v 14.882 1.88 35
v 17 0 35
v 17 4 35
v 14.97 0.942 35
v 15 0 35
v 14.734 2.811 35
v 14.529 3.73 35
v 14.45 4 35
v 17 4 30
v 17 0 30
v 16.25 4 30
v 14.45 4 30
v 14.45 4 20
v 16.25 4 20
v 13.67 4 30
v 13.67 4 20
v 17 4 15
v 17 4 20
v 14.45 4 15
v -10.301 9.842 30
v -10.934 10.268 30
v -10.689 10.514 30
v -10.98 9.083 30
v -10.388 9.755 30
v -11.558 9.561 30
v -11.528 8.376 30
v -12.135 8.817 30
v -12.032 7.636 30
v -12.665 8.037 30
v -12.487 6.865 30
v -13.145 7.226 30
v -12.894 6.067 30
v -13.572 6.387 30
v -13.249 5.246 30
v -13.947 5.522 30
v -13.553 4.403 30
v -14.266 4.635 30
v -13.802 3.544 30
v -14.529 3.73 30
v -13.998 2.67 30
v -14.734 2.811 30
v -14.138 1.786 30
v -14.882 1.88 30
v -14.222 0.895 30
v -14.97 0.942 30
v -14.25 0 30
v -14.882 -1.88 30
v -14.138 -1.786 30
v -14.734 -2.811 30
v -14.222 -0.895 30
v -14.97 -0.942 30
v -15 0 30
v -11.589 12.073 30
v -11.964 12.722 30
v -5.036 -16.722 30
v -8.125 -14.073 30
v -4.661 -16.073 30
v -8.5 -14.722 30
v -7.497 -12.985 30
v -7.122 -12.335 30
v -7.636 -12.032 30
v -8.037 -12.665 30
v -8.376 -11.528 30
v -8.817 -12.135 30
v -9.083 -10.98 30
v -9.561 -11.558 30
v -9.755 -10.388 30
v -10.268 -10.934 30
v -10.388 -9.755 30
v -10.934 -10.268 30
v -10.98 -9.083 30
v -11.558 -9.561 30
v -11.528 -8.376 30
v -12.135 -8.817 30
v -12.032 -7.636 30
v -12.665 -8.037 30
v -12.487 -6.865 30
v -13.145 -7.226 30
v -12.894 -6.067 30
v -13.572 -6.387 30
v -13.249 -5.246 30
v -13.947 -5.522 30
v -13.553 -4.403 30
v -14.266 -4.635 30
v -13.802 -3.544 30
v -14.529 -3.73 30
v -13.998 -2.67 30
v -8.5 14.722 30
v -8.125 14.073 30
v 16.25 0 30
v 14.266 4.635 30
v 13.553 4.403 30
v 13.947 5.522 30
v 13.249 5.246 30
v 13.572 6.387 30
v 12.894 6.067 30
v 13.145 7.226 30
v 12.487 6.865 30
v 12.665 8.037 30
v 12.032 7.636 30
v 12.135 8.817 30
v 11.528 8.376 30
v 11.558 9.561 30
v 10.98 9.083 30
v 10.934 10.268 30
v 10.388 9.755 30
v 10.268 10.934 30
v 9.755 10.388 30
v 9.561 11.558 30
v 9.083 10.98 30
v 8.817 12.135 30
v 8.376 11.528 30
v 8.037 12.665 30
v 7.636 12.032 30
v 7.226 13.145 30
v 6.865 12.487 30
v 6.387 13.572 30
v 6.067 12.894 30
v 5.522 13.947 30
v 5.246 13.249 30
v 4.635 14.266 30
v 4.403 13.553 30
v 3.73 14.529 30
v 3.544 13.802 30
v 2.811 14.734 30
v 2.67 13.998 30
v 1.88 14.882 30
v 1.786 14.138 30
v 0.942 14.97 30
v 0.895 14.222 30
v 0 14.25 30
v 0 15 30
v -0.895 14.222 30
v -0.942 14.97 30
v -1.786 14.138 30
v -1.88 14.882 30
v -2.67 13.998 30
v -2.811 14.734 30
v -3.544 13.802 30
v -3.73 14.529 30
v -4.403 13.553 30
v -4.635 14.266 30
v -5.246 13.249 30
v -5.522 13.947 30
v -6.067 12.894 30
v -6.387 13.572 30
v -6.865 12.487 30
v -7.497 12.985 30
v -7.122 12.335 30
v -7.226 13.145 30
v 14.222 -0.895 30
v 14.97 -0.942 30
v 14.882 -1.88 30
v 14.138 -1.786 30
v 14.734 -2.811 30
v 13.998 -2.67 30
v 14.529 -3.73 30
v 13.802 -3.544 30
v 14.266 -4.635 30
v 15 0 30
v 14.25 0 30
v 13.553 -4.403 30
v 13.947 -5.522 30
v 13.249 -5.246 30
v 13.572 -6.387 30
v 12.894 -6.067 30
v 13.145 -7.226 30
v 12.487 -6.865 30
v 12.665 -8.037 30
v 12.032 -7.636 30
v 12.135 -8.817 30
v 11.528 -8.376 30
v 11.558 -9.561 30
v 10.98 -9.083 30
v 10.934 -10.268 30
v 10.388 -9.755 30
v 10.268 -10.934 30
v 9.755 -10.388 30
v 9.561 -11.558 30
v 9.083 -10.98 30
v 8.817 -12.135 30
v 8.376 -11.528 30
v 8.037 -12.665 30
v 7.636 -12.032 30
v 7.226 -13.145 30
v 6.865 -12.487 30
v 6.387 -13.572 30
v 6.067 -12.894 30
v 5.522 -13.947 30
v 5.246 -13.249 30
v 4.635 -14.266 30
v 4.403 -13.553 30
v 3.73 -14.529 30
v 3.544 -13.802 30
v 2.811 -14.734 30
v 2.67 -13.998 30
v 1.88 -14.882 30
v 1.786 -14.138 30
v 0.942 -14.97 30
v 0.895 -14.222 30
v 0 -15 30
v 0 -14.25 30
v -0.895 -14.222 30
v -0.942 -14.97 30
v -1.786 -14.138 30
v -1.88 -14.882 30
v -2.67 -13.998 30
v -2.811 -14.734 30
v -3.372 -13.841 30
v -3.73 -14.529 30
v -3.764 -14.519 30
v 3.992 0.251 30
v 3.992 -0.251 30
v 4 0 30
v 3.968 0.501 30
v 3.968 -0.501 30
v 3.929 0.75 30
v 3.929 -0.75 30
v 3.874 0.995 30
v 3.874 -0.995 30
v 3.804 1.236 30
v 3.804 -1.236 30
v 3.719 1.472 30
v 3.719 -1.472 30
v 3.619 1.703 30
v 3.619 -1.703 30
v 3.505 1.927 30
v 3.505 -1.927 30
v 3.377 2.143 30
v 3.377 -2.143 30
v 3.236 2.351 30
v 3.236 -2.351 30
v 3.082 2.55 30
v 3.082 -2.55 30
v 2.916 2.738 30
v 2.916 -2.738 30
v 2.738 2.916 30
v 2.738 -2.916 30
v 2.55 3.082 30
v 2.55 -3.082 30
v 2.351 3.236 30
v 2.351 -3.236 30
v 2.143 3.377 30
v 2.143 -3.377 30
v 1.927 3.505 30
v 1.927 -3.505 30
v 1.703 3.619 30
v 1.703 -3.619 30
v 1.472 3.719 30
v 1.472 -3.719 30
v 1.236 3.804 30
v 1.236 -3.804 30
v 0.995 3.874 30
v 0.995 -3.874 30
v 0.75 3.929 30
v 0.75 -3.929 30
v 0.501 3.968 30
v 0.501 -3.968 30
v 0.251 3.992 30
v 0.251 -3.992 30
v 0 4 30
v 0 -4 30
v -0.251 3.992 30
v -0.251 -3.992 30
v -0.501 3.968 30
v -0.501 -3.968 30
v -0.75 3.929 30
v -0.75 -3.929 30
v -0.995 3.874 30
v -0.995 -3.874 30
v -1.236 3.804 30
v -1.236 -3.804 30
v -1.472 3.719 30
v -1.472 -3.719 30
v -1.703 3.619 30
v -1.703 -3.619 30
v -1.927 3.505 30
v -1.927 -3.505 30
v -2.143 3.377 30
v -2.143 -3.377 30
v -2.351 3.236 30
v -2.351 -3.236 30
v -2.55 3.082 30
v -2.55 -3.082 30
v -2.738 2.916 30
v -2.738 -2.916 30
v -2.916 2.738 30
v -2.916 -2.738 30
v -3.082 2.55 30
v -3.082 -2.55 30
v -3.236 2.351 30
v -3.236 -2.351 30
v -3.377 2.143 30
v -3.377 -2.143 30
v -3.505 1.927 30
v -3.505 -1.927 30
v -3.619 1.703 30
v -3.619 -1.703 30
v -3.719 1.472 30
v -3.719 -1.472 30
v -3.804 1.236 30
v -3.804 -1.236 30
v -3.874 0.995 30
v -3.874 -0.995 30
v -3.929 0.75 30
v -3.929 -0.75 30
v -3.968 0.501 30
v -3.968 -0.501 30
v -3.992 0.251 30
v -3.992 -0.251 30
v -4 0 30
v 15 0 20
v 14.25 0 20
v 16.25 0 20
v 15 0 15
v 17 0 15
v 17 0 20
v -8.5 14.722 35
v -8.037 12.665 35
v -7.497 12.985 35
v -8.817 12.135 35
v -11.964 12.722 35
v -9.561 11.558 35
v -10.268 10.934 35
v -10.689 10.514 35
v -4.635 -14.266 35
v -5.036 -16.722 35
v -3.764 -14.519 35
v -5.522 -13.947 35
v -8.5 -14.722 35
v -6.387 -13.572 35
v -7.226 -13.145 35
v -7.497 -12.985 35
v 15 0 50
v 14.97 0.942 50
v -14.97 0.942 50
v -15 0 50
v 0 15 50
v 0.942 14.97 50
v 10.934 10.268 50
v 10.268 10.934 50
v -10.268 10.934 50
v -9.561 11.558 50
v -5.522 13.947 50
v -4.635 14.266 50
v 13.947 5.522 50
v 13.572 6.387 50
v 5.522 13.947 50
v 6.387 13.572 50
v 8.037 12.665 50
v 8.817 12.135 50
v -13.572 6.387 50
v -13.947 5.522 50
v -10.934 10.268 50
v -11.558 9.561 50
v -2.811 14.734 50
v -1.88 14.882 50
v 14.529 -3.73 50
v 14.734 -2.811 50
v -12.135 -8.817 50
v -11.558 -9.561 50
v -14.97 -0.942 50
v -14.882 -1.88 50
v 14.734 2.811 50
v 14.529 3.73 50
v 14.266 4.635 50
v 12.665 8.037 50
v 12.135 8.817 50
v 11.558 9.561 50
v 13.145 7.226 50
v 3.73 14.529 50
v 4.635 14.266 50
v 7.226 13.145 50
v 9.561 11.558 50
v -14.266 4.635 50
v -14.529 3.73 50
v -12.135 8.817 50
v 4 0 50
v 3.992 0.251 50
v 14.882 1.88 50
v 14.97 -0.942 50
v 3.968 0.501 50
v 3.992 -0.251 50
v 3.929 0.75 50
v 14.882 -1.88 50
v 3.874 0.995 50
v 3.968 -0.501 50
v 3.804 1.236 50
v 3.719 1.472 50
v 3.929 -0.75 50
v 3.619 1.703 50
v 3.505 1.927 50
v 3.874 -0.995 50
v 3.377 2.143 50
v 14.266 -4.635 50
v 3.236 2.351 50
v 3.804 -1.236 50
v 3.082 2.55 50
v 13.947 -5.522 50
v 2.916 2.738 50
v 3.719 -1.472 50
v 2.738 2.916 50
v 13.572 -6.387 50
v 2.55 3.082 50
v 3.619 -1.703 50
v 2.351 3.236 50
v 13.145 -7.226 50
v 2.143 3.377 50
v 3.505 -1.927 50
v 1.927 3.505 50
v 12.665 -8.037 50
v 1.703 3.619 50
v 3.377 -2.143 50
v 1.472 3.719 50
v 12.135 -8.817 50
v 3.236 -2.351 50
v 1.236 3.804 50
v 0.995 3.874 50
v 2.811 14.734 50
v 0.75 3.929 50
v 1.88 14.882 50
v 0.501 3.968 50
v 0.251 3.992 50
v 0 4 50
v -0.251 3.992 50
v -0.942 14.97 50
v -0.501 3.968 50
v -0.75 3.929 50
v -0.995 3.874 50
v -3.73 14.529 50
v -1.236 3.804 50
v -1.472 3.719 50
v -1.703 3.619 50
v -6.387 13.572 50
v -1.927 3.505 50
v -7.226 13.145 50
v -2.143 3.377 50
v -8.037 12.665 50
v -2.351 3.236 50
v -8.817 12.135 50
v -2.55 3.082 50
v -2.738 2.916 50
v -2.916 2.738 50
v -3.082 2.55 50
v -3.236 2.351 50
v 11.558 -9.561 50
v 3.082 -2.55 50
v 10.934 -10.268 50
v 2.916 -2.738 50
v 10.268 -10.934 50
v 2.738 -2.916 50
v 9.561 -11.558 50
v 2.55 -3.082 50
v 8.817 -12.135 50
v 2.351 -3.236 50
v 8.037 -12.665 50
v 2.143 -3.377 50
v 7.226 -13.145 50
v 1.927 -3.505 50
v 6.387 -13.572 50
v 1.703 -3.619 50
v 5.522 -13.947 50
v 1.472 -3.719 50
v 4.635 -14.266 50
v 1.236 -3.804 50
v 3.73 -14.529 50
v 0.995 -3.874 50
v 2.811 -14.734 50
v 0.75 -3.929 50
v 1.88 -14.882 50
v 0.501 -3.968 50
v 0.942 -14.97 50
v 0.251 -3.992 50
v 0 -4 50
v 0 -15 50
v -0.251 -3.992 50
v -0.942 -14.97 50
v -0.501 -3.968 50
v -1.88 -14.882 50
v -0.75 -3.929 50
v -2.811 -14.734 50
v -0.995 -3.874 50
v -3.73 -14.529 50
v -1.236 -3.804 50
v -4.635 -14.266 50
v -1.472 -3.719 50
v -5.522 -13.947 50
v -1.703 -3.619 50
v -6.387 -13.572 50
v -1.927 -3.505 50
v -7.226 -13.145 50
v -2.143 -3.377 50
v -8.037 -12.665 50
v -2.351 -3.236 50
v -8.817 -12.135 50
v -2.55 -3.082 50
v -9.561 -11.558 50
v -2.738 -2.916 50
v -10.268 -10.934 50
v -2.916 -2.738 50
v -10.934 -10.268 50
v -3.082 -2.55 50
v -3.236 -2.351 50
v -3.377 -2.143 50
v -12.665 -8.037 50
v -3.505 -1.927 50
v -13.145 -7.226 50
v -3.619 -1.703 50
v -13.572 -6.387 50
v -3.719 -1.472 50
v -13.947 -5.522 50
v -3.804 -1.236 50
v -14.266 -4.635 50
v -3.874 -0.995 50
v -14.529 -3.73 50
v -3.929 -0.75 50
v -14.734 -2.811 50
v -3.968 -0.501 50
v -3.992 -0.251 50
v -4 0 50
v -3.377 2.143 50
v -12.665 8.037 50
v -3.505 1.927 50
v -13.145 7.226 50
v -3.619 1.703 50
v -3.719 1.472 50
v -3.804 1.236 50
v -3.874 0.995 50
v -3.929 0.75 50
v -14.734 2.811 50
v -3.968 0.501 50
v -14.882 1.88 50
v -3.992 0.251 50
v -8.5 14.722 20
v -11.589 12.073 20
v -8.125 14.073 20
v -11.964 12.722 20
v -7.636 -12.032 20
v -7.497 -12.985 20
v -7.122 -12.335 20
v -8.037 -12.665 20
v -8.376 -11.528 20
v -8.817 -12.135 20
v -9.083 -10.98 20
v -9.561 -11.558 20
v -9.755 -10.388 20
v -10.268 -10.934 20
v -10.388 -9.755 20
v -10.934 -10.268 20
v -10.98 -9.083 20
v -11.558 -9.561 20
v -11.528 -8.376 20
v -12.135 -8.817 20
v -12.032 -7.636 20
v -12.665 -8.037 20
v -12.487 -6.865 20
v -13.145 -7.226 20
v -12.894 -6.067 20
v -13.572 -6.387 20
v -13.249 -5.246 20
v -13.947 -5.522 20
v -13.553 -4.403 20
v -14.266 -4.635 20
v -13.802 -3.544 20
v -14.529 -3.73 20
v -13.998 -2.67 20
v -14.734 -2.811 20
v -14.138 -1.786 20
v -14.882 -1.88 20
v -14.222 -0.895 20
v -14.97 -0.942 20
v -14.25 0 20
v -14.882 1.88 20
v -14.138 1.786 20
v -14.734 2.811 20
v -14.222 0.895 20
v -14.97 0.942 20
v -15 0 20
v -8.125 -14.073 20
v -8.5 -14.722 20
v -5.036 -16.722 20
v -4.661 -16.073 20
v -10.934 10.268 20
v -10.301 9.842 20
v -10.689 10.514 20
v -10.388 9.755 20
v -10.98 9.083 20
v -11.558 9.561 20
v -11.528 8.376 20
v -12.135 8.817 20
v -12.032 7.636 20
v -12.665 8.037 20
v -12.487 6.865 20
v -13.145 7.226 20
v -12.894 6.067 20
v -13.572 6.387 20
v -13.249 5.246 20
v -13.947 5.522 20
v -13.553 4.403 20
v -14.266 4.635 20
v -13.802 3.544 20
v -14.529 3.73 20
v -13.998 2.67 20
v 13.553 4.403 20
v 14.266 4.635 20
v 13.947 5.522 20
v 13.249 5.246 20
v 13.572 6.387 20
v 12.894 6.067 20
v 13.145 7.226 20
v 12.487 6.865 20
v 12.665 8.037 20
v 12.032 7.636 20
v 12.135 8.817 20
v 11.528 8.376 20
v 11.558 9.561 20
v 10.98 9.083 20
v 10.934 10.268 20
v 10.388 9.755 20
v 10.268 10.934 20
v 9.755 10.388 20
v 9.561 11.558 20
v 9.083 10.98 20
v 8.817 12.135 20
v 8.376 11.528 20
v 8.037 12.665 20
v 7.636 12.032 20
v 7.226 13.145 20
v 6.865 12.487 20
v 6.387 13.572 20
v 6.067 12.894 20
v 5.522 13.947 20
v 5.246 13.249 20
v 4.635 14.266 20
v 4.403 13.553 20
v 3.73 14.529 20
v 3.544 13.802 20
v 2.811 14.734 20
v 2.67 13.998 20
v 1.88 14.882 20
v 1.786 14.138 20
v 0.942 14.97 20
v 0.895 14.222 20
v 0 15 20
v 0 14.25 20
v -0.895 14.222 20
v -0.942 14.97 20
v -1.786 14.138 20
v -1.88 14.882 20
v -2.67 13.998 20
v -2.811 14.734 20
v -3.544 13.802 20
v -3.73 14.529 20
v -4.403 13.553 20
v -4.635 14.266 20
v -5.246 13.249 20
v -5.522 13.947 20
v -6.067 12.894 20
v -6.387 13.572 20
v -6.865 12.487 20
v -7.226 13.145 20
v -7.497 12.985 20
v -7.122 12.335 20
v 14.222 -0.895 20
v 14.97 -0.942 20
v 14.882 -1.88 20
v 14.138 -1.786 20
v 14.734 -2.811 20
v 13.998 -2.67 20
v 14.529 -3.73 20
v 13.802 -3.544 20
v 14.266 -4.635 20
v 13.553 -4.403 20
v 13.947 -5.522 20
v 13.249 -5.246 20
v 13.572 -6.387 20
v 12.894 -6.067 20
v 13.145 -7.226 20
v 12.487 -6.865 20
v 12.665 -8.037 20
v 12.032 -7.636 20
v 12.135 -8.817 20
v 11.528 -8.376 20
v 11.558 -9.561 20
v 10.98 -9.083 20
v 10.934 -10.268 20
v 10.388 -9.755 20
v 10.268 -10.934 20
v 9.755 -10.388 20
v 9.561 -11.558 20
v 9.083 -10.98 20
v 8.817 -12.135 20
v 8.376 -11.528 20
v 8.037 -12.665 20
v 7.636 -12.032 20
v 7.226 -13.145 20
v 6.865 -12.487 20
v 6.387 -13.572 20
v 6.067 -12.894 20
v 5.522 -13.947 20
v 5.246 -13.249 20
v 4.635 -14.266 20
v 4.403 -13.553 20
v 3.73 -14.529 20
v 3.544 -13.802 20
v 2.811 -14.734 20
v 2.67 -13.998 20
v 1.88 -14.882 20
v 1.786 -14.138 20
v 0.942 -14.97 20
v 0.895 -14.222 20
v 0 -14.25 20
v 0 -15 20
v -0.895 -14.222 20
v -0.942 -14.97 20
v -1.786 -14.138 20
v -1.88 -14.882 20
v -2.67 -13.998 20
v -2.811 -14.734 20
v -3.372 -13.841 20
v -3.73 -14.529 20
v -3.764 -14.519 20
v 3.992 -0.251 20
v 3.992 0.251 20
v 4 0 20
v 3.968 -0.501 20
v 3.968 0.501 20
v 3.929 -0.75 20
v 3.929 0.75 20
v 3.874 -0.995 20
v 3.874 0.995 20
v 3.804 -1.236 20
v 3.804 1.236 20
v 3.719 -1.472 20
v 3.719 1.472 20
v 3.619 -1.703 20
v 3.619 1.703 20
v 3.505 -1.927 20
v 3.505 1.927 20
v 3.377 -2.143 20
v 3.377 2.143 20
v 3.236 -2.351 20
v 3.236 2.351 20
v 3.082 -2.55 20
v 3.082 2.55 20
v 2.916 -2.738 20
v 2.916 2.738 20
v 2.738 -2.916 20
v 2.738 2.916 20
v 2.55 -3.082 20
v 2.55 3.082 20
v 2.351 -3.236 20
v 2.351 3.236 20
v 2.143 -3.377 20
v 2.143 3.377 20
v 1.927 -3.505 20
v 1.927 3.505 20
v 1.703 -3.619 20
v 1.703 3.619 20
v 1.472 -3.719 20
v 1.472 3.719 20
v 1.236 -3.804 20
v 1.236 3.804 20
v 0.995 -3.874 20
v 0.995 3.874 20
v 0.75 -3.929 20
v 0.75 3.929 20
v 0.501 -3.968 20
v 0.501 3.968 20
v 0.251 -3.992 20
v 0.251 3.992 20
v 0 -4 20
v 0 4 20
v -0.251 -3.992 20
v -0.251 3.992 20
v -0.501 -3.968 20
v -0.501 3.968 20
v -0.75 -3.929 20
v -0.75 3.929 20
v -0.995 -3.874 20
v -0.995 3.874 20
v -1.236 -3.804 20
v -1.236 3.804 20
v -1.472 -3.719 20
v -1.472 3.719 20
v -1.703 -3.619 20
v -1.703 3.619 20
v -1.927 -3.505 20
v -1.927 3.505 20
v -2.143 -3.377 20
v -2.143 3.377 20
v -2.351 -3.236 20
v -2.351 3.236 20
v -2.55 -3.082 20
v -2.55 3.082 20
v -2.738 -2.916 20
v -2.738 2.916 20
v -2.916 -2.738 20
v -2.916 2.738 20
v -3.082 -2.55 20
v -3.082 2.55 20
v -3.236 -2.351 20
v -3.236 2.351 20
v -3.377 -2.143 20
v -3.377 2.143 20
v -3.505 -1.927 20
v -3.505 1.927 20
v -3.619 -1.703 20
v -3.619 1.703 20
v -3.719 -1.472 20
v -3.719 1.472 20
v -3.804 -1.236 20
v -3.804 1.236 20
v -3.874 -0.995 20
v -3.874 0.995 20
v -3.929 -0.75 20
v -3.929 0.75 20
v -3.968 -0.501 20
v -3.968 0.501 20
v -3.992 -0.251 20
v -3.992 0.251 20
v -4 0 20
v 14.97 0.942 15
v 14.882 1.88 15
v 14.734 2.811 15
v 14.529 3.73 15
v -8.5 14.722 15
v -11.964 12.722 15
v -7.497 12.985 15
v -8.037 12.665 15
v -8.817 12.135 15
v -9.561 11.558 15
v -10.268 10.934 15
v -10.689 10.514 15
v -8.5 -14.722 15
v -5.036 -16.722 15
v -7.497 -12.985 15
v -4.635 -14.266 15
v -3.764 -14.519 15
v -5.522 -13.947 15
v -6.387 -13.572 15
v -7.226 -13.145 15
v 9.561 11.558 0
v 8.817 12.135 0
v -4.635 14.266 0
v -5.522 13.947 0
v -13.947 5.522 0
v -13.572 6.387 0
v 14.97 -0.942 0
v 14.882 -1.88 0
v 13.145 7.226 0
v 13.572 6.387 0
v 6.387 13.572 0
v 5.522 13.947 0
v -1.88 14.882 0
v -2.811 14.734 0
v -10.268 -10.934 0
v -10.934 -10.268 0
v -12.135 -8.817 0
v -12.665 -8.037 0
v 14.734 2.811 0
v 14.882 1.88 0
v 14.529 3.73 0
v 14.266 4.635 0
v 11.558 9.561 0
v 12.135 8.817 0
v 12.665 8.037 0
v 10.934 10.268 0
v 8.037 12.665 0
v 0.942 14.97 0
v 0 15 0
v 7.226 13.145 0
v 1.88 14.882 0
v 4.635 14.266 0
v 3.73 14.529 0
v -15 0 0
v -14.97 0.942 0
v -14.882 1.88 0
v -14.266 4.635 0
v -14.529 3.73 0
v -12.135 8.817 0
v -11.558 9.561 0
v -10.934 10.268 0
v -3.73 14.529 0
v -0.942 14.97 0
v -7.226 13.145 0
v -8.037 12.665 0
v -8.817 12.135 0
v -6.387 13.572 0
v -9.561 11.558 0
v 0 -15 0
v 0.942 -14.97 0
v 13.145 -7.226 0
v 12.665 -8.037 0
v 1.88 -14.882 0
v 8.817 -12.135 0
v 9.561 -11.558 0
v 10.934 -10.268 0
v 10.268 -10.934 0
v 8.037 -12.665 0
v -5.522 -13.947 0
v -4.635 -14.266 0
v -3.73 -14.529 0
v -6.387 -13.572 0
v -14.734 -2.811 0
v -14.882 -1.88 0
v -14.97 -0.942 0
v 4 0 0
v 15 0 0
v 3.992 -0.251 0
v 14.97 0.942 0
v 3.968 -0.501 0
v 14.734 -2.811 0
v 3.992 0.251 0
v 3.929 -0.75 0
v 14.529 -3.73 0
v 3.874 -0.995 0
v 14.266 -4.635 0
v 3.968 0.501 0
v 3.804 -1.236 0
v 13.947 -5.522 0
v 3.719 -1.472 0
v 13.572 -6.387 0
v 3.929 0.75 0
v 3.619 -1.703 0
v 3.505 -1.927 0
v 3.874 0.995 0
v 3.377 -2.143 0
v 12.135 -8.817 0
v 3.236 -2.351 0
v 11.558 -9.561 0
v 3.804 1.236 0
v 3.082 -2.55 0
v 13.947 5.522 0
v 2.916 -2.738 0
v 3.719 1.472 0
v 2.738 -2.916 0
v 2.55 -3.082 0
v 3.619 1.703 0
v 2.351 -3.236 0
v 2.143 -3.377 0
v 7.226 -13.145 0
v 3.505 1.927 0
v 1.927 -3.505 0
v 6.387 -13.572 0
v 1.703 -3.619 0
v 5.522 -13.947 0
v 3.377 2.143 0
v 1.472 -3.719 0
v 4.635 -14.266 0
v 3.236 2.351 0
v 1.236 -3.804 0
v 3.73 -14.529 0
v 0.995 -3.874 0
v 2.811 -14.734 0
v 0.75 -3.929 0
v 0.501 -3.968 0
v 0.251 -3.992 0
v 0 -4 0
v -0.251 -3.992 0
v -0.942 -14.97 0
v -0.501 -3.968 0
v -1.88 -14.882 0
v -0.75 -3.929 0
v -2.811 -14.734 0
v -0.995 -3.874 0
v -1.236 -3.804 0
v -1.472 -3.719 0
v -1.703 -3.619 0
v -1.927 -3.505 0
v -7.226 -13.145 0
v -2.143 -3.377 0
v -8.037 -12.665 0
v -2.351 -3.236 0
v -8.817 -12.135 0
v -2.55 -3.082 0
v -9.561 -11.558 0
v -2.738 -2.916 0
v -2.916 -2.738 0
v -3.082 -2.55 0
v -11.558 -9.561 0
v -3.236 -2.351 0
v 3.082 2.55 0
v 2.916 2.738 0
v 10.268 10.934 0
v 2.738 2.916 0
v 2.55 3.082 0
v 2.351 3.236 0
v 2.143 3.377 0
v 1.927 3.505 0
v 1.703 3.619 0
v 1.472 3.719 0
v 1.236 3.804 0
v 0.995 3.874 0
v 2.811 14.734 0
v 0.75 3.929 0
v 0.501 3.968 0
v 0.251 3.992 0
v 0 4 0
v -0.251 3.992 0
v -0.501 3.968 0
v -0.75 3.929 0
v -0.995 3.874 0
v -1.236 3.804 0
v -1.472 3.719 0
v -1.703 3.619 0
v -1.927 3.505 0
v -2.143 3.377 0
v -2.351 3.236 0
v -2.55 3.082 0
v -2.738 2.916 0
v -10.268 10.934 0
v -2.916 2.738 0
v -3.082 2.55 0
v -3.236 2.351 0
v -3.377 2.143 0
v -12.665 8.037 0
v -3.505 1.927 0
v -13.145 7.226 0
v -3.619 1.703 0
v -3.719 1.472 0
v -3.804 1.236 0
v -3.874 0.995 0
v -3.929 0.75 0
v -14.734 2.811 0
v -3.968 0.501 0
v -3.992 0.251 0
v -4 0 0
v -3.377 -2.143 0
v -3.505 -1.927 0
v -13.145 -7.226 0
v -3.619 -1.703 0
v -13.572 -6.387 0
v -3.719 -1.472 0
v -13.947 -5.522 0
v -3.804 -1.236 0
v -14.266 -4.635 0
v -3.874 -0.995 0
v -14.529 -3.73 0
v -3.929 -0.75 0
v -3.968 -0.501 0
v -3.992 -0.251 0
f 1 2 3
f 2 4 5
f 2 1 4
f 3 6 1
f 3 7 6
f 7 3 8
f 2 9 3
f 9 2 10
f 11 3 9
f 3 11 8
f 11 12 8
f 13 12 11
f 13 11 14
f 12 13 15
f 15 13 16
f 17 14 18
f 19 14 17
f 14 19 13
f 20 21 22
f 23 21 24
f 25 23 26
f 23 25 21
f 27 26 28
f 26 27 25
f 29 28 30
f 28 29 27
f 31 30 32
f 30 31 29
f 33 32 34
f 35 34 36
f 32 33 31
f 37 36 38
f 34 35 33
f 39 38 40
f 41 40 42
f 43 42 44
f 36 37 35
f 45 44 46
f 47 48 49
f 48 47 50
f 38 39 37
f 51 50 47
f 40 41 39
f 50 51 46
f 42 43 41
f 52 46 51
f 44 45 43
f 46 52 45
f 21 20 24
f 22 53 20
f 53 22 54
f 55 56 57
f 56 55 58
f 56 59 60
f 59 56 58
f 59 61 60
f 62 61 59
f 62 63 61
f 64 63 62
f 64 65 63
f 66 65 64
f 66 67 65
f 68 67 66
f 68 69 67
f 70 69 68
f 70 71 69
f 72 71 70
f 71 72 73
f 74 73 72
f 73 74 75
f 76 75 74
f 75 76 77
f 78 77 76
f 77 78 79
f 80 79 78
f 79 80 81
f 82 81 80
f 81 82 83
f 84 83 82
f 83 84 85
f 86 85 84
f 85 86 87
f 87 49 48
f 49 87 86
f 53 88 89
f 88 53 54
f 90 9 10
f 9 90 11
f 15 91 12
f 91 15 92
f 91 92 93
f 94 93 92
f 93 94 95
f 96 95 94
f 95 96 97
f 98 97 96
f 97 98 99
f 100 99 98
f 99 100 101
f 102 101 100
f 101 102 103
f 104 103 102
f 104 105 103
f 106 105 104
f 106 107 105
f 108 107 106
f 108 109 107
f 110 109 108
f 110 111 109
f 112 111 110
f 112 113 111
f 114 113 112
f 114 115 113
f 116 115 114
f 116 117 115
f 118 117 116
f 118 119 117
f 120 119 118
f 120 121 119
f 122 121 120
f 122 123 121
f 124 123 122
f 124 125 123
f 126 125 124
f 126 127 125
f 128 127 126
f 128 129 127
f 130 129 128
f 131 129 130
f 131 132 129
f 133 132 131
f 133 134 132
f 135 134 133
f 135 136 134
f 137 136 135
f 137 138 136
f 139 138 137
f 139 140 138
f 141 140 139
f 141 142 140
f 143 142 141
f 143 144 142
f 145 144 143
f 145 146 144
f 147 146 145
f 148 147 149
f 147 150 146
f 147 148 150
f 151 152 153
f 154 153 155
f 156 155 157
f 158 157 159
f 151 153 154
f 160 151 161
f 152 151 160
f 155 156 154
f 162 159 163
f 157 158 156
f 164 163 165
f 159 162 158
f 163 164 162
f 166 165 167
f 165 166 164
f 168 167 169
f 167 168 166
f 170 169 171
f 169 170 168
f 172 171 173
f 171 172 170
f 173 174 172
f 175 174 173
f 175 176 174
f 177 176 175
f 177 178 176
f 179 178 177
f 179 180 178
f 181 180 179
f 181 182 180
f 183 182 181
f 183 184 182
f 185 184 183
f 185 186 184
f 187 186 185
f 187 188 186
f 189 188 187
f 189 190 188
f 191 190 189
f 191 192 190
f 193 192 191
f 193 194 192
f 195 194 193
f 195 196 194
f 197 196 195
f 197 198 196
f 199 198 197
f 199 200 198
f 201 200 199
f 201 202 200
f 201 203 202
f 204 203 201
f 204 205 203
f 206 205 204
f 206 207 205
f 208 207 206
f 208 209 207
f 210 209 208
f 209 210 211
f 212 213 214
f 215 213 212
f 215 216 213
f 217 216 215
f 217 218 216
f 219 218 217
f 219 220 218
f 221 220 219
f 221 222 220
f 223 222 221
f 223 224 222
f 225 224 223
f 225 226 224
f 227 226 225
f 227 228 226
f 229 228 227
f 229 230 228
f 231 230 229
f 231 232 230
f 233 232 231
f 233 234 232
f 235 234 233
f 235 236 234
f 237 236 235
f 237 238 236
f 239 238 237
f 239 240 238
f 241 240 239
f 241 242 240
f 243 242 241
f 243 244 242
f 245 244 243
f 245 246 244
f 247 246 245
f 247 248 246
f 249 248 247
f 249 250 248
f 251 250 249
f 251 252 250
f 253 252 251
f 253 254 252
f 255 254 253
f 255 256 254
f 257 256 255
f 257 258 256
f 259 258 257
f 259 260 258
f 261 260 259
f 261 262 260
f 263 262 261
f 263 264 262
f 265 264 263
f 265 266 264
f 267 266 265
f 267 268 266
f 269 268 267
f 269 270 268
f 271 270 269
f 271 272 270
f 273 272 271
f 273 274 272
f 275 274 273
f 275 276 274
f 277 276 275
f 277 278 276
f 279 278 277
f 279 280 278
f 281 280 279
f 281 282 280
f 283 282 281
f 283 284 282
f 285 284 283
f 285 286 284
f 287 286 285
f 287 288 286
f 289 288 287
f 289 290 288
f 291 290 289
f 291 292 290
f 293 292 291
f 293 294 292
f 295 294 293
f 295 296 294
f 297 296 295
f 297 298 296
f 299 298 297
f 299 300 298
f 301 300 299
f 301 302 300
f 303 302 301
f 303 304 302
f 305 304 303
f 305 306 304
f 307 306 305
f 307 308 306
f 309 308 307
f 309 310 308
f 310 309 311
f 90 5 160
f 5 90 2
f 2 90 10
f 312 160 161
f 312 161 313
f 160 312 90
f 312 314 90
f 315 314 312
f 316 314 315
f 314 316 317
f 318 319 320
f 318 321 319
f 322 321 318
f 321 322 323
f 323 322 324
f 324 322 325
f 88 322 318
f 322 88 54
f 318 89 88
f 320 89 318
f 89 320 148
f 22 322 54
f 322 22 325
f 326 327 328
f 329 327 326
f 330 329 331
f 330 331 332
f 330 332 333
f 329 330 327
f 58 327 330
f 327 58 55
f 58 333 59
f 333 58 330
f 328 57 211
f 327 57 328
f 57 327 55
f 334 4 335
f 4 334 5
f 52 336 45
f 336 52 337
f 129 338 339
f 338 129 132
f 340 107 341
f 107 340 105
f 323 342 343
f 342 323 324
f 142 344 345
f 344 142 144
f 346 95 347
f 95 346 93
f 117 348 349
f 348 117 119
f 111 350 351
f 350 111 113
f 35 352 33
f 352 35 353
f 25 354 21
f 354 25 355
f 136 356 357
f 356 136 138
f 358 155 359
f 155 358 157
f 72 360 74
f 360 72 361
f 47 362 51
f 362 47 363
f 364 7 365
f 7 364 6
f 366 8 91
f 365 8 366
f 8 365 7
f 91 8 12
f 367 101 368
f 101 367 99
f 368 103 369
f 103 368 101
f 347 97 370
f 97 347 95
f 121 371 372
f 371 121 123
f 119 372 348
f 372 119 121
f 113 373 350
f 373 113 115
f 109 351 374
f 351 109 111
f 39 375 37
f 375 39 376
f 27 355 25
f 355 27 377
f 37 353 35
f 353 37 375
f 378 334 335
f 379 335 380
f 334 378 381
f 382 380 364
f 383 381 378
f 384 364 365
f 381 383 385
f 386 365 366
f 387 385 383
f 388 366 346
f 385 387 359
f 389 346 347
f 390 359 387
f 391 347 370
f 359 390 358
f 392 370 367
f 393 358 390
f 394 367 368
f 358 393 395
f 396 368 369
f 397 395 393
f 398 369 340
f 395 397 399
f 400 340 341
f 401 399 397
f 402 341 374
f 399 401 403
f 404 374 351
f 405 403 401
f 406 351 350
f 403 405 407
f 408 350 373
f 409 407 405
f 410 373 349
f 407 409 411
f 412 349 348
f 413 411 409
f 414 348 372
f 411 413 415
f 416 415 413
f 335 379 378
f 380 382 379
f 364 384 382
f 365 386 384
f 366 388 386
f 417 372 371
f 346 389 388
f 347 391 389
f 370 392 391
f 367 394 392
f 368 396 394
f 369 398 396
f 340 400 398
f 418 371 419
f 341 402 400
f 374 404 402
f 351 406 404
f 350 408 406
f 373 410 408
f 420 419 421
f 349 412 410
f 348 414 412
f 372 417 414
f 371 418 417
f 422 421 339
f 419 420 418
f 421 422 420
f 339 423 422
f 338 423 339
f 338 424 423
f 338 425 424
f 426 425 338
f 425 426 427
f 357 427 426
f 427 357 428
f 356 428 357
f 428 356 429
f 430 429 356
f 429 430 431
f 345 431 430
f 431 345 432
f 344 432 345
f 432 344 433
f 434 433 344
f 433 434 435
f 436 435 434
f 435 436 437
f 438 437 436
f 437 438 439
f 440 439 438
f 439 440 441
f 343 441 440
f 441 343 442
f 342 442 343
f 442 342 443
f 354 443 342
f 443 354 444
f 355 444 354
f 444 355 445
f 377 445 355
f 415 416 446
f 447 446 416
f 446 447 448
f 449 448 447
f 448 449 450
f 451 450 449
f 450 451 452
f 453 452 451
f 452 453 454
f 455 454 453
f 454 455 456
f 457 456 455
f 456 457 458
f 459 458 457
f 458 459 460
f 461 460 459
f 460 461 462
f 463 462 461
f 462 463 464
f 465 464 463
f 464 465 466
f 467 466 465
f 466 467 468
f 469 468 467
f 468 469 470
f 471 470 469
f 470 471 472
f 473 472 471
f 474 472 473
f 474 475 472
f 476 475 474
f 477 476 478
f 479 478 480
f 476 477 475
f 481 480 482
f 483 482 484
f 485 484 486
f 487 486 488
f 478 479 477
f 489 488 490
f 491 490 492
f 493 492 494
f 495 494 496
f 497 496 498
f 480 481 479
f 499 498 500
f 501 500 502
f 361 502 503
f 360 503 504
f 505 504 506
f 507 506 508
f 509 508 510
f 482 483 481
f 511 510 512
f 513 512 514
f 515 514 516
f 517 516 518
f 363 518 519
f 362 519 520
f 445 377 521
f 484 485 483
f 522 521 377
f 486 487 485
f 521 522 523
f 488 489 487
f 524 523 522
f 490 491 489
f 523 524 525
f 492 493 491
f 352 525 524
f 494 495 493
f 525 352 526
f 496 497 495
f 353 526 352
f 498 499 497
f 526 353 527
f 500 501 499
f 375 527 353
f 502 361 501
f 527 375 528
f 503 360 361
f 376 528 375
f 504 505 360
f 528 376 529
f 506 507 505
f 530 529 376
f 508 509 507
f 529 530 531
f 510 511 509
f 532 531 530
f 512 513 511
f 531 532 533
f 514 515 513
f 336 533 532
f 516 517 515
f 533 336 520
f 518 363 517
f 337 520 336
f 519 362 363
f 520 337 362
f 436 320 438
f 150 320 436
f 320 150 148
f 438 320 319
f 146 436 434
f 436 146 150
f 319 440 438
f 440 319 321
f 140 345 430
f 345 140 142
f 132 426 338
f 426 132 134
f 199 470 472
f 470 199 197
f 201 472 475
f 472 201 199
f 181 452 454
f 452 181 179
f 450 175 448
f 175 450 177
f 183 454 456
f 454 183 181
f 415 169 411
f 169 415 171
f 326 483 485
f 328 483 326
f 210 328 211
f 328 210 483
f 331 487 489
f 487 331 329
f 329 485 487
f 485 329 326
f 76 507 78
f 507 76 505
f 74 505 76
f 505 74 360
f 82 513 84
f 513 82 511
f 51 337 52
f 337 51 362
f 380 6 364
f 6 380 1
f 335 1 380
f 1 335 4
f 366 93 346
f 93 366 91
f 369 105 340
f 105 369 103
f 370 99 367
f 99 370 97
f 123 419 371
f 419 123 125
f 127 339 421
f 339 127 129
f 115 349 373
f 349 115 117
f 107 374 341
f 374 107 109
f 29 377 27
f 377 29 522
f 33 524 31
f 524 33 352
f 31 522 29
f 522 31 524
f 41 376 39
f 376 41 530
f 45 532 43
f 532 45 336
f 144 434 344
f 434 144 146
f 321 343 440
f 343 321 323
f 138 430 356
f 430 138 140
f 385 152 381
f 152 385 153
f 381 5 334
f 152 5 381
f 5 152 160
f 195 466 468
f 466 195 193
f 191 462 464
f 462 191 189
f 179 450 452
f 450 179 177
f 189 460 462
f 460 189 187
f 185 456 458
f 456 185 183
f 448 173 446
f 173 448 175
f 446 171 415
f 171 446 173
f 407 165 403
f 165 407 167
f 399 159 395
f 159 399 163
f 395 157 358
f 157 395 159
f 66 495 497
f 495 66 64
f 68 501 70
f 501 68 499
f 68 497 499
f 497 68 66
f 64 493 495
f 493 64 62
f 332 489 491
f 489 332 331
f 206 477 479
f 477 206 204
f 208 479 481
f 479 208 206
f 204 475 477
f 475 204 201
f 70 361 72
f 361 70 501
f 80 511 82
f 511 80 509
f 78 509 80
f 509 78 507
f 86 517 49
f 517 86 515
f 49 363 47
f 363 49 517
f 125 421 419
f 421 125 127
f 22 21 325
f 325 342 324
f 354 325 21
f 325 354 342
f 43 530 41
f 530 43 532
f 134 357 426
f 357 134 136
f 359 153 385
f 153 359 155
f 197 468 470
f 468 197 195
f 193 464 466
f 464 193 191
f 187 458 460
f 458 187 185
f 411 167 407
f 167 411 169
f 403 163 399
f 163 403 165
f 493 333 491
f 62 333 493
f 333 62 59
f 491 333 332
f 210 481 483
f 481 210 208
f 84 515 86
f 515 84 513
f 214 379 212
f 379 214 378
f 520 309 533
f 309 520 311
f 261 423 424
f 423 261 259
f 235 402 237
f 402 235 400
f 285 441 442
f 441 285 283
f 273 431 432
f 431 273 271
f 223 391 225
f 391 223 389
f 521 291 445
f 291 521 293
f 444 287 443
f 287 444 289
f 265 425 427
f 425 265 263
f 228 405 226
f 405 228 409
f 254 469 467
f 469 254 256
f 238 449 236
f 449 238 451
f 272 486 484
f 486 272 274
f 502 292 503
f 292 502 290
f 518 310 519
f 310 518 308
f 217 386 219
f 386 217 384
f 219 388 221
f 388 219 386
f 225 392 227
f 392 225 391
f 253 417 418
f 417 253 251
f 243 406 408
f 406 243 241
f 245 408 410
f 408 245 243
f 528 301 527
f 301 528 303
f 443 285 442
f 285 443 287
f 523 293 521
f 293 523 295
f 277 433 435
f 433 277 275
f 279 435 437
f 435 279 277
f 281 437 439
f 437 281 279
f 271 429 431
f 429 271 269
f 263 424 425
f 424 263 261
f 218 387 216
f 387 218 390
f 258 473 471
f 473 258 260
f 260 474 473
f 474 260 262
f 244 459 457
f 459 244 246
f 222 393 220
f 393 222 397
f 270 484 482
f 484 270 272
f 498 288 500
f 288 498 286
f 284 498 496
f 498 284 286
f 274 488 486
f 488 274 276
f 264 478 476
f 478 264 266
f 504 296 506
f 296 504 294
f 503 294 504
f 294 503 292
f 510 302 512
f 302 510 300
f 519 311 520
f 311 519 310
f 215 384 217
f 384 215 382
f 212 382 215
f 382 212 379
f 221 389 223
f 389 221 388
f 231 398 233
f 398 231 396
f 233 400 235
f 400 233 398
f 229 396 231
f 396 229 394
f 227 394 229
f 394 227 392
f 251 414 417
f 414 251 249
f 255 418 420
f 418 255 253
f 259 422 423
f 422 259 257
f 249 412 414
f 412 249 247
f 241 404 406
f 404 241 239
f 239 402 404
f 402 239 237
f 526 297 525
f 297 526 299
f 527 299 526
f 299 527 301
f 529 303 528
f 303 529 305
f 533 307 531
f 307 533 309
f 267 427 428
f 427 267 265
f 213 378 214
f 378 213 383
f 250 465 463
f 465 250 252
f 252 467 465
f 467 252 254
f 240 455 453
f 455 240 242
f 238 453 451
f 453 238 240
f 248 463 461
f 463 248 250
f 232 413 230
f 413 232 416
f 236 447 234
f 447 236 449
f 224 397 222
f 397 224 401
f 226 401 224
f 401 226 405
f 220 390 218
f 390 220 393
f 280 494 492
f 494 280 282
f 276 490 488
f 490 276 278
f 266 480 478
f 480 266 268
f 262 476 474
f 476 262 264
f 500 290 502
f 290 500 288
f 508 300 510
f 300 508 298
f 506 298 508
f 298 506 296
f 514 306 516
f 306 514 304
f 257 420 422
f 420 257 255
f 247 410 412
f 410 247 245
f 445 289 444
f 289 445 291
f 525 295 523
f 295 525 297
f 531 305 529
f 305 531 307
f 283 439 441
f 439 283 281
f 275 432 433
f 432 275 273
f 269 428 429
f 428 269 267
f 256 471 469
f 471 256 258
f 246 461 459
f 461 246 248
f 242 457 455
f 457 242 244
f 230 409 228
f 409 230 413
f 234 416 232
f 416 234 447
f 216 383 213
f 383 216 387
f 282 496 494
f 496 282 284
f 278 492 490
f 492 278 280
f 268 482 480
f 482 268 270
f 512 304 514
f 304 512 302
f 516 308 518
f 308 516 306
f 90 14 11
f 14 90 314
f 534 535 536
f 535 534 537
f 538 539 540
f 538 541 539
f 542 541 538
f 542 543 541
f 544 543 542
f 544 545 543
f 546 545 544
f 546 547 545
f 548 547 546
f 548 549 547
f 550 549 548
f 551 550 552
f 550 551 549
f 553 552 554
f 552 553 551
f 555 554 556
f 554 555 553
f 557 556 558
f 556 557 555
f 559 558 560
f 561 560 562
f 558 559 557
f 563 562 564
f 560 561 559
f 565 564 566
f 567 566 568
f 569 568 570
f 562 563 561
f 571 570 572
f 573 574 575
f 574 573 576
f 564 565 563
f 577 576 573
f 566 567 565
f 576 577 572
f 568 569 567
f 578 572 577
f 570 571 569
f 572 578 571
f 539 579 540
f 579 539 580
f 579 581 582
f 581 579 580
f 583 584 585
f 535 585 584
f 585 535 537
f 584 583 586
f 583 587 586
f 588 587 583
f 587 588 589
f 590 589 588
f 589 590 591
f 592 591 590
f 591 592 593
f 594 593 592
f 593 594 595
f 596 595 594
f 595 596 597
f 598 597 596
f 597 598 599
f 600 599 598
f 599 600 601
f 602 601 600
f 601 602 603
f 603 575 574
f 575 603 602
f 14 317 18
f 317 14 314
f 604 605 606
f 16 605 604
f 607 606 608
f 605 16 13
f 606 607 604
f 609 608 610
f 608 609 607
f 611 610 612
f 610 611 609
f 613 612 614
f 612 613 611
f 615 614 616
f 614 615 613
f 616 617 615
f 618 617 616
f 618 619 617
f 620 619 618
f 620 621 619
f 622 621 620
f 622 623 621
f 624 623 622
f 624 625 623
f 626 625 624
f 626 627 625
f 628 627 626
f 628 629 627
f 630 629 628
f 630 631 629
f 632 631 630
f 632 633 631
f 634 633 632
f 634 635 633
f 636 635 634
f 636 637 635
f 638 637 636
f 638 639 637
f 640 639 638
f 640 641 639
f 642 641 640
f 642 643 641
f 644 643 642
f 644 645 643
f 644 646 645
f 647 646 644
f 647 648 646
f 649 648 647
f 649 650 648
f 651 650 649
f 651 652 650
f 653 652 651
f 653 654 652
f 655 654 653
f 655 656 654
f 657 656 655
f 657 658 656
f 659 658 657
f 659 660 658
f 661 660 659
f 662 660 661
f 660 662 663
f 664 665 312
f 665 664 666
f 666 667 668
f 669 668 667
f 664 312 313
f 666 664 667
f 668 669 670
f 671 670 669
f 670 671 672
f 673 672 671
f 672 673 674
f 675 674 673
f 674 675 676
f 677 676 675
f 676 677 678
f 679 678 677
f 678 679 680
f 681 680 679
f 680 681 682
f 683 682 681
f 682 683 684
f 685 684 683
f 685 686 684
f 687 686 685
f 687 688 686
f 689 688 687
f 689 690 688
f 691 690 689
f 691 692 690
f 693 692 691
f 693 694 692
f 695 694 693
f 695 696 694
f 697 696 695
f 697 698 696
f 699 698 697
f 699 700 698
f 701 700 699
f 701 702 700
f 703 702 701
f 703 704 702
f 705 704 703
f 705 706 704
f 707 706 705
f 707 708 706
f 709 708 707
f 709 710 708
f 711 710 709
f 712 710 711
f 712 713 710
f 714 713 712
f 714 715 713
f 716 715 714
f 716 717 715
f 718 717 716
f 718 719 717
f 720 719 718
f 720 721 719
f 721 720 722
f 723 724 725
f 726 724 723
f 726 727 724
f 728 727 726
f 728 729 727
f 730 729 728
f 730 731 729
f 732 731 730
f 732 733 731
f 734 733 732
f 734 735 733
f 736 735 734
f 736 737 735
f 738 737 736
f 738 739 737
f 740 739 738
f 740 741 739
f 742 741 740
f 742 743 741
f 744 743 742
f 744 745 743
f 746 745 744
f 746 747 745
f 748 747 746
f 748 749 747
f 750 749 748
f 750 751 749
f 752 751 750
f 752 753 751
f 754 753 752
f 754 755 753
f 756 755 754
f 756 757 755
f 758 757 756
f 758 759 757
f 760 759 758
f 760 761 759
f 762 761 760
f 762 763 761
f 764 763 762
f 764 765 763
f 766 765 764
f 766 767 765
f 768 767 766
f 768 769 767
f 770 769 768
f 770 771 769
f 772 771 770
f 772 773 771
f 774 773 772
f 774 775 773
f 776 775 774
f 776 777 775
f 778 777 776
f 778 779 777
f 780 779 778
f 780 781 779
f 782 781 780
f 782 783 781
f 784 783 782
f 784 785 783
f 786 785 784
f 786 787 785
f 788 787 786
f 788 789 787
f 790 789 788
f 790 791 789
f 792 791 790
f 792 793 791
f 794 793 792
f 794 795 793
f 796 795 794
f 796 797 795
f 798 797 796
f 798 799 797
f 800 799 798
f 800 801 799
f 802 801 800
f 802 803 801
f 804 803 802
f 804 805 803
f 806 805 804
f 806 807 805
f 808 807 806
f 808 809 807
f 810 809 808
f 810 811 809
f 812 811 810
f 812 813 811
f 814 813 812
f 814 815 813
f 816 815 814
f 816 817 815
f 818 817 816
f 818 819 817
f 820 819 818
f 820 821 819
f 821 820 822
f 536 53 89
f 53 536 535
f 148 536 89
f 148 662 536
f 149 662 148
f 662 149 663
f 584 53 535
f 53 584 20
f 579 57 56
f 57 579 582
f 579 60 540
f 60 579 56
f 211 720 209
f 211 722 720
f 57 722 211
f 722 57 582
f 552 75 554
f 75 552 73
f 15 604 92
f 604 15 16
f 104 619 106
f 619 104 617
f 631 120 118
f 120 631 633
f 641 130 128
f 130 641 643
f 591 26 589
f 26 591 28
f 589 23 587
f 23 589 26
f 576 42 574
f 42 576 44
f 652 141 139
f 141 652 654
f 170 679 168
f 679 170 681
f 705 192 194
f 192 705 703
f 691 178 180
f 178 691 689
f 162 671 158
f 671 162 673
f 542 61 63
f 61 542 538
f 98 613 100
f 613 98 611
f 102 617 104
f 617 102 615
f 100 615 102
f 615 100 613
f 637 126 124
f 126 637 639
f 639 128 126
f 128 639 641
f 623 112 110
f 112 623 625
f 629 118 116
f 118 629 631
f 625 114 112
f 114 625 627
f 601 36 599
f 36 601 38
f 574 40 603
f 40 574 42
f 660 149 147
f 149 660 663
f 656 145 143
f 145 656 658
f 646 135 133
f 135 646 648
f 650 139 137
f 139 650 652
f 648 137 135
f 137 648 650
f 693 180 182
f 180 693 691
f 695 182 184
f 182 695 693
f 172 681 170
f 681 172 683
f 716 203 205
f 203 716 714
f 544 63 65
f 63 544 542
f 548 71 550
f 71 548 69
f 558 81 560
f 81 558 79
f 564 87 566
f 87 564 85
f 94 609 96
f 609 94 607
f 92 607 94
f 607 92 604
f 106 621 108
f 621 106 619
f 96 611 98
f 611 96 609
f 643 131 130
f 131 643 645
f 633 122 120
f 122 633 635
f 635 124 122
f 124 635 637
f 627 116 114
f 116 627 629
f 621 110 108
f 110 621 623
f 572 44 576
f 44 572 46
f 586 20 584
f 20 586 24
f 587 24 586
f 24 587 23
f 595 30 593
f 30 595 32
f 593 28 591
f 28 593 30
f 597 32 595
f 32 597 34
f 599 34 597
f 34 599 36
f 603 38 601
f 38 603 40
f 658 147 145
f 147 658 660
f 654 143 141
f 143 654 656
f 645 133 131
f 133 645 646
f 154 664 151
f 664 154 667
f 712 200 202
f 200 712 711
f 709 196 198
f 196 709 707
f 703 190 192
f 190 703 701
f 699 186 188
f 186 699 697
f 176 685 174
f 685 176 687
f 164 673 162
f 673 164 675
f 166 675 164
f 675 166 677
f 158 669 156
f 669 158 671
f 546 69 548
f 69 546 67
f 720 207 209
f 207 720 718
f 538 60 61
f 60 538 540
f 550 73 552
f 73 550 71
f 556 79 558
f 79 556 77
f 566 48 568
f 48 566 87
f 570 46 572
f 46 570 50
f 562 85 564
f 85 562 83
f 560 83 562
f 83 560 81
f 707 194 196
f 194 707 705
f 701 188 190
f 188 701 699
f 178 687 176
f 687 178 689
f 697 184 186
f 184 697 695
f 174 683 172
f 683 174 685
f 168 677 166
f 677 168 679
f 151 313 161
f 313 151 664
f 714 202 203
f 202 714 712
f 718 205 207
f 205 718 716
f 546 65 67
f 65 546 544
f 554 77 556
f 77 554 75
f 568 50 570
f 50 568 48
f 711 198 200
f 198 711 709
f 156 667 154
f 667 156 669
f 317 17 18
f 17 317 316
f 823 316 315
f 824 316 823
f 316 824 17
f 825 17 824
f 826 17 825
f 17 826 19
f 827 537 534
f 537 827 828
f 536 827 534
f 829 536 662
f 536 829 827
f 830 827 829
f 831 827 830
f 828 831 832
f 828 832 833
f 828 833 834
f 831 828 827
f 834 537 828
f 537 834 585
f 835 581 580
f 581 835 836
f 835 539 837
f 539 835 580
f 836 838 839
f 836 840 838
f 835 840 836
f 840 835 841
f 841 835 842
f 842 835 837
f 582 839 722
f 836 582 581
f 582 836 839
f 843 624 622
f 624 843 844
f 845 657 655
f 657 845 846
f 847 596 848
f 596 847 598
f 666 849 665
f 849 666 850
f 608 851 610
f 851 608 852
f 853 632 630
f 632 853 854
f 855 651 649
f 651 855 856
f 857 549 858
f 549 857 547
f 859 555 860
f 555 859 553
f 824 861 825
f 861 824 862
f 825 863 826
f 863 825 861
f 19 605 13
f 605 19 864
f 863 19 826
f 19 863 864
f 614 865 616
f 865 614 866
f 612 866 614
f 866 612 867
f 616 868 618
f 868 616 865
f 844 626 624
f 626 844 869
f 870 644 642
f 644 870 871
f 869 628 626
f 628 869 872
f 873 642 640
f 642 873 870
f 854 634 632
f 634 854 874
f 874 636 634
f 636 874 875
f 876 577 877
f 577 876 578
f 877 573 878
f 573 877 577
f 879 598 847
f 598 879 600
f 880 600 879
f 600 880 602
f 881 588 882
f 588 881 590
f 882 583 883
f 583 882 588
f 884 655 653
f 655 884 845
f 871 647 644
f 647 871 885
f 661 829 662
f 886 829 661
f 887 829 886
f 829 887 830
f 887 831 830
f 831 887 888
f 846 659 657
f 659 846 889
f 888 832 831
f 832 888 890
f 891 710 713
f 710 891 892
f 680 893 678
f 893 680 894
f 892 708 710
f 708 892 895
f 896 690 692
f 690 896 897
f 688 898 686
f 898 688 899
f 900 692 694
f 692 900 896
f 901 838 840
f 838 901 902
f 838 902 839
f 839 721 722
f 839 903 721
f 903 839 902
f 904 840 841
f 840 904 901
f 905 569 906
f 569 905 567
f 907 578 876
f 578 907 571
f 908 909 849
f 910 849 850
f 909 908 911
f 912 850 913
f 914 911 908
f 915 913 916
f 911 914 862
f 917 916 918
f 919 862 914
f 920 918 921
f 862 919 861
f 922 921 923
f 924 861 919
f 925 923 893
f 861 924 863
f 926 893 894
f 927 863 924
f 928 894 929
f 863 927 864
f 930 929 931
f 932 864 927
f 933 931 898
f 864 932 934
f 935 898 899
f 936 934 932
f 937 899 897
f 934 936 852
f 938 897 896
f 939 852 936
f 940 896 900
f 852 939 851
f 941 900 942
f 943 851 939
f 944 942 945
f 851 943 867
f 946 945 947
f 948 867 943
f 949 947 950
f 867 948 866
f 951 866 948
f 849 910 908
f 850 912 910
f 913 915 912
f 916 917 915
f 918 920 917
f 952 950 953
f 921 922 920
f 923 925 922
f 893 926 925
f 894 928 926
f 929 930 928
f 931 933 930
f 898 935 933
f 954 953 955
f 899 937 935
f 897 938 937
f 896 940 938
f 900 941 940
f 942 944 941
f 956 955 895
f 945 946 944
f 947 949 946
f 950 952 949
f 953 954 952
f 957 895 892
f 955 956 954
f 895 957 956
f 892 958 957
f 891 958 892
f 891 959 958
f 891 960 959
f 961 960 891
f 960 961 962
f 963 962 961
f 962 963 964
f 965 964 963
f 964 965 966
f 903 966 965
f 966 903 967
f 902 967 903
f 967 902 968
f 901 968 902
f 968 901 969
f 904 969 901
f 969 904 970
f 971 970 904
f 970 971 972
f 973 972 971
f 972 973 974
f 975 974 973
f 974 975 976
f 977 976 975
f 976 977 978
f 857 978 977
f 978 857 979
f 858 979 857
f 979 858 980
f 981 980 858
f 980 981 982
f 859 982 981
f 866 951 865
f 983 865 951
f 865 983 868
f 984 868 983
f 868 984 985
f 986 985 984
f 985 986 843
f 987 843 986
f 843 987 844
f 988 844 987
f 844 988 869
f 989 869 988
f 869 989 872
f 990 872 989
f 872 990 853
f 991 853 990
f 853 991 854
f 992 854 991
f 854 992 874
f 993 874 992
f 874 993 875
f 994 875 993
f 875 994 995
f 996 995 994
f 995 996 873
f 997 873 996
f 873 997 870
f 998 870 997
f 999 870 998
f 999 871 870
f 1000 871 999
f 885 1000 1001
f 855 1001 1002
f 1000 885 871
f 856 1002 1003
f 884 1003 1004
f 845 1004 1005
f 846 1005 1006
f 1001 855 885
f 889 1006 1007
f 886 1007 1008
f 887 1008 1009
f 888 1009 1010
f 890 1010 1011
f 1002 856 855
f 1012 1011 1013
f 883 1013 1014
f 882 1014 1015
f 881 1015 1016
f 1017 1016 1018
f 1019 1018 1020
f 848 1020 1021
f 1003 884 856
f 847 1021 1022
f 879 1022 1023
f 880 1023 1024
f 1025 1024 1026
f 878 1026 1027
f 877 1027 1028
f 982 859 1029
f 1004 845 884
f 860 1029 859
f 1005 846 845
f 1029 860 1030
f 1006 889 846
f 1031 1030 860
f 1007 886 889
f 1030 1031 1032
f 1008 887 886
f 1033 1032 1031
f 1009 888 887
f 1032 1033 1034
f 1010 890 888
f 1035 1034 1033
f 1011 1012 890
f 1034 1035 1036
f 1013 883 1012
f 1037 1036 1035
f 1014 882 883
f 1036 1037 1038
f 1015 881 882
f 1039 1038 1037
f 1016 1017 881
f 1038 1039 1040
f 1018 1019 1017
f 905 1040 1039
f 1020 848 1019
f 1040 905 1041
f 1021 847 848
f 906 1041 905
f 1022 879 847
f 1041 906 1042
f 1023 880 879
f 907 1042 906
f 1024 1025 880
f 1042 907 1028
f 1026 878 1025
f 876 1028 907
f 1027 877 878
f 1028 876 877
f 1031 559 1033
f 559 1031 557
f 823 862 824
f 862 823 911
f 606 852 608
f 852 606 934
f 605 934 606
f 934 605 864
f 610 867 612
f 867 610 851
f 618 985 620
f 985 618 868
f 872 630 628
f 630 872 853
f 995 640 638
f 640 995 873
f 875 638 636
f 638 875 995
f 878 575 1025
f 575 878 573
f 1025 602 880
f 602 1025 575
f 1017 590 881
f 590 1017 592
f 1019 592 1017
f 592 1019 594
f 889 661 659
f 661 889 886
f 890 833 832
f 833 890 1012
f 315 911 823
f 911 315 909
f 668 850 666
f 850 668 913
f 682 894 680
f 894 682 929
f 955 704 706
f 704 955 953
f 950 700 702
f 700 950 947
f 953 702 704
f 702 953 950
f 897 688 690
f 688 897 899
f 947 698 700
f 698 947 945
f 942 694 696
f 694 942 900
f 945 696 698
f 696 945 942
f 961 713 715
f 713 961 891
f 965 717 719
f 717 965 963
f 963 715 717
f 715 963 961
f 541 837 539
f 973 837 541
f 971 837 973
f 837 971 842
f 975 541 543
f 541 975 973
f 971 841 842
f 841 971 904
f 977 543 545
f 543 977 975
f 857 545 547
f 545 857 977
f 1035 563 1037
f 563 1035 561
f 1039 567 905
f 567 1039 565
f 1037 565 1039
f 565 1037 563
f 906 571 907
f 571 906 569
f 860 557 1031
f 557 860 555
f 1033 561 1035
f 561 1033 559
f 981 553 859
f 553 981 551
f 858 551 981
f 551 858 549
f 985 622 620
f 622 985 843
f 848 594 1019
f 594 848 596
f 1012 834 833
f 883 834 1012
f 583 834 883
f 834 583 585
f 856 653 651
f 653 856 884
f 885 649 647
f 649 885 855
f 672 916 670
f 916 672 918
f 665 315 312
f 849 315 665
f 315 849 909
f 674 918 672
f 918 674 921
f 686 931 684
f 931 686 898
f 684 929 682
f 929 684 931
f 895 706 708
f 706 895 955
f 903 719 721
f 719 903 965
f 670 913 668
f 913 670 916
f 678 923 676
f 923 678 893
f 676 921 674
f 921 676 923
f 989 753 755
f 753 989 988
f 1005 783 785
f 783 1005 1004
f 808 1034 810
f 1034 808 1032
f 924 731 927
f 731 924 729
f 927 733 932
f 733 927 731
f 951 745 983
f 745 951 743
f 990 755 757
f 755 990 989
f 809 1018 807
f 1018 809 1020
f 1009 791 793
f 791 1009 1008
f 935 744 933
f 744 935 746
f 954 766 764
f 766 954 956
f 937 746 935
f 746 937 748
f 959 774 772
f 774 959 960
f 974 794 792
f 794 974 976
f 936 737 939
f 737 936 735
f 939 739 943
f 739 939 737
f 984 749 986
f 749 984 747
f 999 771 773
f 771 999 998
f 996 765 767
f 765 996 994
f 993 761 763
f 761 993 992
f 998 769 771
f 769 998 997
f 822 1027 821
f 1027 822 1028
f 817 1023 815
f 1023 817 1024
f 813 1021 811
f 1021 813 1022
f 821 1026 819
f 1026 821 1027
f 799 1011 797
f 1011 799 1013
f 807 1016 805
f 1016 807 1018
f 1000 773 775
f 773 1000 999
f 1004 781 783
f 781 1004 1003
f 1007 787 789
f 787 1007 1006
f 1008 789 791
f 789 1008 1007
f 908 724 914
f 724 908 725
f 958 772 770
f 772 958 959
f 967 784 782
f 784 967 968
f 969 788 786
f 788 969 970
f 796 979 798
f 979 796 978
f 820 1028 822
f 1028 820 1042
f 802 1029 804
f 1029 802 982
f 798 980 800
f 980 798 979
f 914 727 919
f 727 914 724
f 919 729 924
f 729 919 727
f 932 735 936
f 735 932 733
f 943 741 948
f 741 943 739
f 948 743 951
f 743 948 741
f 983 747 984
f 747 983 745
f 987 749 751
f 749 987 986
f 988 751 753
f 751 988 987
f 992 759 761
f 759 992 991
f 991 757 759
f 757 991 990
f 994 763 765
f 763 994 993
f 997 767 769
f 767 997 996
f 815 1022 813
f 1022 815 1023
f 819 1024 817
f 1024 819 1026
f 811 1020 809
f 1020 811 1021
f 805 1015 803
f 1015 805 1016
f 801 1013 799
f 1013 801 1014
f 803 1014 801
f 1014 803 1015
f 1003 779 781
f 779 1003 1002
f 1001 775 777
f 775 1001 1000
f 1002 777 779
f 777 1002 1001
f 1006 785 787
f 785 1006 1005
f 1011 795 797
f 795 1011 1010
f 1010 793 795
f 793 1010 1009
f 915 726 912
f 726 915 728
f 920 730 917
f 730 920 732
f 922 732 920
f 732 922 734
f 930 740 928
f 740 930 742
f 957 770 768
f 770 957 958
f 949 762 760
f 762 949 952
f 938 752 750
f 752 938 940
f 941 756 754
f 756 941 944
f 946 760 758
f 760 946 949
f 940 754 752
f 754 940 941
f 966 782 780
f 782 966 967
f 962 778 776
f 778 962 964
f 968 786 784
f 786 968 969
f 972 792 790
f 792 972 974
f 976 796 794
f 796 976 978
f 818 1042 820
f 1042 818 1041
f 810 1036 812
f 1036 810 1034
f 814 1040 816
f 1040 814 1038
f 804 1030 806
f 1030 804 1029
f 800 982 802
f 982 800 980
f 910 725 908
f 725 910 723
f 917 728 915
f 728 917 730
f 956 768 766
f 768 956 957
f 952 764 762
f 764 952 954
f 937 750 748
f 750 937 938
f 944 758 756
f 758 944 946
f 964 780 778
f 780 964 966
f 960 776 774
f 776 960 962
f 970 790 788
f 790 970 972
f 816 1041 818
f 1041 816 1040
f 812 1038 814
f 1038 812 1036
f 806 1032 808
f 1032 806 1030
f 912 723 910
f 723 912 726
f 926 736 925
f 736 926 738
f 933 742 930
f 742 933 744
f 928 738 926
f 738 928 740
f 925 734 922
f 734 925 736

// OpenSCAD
$fn = 100; // Smoothness

// Parameters
hub_diameter = 30;
hub_length = 20;
bore_diameter = 8;
slot_width = 2;
slot_depth = hub_diameter;
jaw_depth = 5;
jaw_lobes = 3;
insert_length = 10;
insert_diameter = hub_diameter * 0.95;

// Main Assembly
module flexible_coupling() {
    translate([0, 0, hub_length + insert_length])
        left_clamp_hub();
    translate([0, 0, hub_length])
        central_jaw_insert();
    translate([0, 0, 0])
        right_clamp_hub();
}

// Left Clamp Hub
module left_clamp_hub() {
    difference() {
        union() {
            cylinder(h = hub_length, d = hub_diameter);
            jaw_profile(jaw_depth, true);
        }
        // Bore hole
        translate([0, 0, -1])
            cylinder(h = hub_length + 2, d = bore_diameter);
        // Clamping slot
        translate([-slot_width/2, -hub_diameter, hub_length/2])
            cube([slot_width, slot_depth, hub_length], center=true);
    }
}

// Right Clamp Hub (mirror of left)
module right_clamp_hub() {
    difference() {
        union() {
            cylinder(h = hub_length, d = hub_diameter);
            jaw_profile(jaw_depth, false);
        }
        // Bore hole
        translate([0, 0, -1])
            cylinder(h = hub_length + 2, d = bore_diameter);
        // Clamping slot
        translate([-slot_width/2, -hub_diameter, hub_length/2])
            cube([slot_width, slot_depth, hub_length], center=true);
    }
}

// Central Jaw Insert
module central_jaw_insert() {
    difference() {
        union() {
            cylinder(h = insert_length, d = insert_diameter);
            jaw_lobes_profile(jaw_depth);
        }
    }
}

// Jaw Profile for Hubs
module jaw_profile(depth, isLeft=true) {
    angle_step = 360 / jaw_lobes;
    for (i = [0 : jaw_lobes - 1]) {
        rotate([0, 0, i * angle_step])
            translate([hub_diameter/2 - 2, 0, isLeft ? 0 : hub_length - depth])
                cube([4, 4, depth]);
    }
}

// Jaw Lobes for Insert
module jaw_lobes_profile(depth) {
    angle_step = 360 / jaw_lobes;
    for (i = [0 : jaw_lobes - 1]) {
        rotate([0, 0, i * angle_step])
            translate([insert_diameter/2 - 2, 0, 0])
                cube([4, 4, insert_length]);
    }
}

// Render the full assembly
flexible_coupling();
